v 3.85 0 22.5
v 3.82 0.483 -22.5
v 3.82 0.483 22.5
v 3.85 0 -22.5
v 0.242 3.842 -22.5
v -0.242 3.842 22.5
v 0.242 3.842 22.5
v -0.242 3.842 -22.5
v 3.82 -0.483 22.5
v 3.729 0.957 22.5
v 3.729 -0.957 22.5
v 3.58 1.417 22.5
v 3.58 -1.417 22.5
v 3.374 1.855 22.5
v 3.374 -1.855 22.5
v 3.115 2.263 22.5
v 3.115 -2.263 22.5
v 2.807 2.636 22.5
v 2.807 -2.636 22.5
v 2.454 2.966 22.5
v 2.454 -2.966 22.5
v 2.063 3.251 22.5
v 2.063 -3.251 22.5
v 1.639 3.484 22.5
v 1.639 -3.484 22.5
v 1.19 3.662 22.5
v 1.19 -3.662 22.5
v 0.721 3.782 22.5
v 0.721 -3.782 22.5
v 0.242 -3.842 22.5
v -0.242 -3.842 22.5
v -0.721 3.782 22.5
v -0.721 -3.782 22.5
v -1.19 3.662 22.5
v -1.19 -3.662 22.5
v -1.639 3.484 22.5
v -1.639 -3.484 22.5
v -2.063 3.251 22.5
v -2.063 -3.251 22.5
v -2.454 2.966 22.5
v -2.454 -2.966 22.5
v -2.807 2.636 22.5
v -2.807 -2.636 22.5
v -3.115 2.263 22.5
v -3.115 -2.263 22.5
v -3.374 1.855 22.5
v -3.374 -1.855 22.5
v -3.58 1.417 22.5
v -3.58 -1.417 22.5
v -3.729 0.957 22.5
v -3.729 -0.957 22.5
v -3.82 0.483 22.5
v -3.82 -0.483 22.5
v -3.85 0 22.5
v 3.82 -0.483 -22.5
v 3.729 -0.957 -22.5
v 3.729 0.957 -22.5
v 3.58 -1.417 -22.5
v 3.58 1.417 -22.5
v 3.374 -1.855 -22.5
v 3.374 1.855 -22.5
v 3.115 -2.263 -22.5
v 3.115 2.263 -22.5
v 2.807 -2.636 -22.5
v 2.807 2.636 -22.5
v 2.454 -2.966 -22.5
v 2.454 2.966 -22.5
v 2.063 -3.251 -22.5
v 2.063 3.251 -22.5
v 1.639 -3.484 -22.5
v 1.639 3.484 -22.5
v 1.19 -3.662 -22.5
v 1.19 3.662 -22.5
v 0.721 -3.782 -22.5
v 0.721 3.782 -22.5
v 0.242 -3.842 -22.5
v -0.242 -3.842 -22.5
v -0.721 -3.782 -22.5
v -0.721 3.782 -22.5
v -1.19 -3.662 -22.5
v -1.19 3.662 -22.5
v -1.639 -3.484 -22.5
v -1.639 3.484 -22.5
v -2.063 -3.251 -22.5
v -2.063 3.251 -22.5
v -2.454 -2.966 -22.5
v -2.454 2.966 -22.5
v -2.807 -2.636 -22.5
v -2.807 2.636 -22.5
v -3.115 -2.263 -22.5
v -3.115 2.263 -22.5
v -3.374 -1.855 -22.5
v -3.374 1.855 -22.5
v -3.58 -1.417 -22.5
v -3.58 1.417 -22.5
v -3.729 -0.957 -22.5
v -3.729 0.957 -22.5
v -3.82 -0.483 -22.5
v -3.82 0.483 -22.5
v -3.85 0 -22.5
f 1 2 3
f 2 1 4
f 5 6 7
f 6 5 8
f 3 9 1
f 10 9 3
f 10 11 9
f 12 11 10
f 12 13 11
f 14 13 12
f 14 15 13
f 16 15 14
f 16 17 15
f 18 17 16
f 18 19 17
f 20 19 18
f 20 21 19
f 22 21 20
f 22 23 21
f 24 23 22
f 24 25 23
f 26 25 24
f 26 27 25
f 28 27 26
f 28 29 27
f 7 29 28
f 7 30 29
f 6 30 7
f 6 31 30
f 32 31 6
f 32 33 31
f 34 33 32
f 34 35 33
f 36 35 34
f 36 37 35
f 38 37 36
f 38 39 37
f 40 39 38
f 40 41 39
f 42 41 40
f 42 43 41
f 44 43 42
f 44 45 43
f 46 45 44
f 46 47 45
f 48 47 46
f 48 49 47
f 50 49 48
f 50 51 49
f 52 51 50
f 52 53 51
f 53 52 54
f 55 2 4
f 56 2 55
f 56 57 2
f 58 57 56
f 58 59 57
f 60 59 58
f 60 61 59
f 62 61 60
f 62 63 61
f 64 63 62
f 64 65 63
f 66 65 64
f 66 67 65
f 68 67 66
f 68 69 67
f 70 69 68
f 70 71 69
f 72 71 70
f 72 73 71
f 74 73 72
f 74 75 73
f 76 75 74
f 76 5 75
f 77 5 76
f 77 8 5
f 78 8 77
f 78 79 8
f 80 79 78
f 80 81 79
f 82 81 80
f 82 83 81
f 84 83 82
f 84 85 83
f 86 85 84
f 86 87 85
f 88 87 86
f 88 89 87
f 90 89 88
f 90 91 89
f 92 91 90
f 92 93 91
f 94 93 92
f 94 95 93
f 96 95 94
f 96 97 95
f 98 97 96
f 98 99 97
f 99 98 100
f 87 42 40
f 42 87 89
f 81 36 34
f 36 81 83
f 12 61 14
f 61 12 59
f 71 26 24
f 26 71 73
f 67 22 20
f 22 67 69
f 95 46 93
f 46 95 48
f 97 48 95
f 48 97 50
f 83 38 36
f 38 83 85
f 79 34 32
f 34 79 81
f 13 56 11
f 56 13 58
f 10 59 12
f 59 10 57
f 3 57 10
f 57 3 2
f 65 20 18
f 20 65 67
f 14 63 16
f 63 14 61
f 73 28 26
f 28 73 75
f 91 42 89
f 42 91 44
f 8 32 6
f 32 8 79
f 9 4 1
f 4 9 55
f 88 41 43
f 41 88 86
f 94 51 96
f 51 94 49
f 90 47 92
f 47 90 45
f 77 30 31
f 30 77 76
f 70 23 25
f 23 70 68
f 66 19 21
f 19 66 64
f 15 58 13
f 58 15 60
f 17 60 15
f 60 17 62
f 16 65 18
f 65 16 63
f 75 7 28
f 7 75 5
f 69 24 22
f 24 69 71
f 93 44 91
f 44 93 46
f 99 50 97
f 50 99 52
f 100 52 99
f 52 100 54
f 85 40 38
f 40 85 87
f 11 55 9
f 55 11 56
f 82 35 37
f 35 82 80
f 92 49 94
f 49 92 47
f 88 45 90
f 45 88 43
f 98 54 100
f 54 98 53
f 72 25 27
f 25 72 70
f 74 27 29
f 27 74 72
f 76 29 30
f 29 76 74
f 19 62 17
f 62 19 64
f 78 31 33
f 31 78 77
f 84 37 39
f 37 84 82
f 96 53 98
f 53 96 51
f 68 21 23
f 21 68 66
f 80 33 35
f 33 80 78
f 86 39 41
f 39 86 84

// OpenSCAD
$fn = 50;


difference() {
	union() {
		translate(v = [0, 0, -22.5000000000]) {
			cylinder(h = 45, r = 3.8500000000);
		}
	}
	union() {
		translate(v = [0, 0, -100.0000000000]) {
			cylinder(h = 200, r = 0);
		}
	}
}
